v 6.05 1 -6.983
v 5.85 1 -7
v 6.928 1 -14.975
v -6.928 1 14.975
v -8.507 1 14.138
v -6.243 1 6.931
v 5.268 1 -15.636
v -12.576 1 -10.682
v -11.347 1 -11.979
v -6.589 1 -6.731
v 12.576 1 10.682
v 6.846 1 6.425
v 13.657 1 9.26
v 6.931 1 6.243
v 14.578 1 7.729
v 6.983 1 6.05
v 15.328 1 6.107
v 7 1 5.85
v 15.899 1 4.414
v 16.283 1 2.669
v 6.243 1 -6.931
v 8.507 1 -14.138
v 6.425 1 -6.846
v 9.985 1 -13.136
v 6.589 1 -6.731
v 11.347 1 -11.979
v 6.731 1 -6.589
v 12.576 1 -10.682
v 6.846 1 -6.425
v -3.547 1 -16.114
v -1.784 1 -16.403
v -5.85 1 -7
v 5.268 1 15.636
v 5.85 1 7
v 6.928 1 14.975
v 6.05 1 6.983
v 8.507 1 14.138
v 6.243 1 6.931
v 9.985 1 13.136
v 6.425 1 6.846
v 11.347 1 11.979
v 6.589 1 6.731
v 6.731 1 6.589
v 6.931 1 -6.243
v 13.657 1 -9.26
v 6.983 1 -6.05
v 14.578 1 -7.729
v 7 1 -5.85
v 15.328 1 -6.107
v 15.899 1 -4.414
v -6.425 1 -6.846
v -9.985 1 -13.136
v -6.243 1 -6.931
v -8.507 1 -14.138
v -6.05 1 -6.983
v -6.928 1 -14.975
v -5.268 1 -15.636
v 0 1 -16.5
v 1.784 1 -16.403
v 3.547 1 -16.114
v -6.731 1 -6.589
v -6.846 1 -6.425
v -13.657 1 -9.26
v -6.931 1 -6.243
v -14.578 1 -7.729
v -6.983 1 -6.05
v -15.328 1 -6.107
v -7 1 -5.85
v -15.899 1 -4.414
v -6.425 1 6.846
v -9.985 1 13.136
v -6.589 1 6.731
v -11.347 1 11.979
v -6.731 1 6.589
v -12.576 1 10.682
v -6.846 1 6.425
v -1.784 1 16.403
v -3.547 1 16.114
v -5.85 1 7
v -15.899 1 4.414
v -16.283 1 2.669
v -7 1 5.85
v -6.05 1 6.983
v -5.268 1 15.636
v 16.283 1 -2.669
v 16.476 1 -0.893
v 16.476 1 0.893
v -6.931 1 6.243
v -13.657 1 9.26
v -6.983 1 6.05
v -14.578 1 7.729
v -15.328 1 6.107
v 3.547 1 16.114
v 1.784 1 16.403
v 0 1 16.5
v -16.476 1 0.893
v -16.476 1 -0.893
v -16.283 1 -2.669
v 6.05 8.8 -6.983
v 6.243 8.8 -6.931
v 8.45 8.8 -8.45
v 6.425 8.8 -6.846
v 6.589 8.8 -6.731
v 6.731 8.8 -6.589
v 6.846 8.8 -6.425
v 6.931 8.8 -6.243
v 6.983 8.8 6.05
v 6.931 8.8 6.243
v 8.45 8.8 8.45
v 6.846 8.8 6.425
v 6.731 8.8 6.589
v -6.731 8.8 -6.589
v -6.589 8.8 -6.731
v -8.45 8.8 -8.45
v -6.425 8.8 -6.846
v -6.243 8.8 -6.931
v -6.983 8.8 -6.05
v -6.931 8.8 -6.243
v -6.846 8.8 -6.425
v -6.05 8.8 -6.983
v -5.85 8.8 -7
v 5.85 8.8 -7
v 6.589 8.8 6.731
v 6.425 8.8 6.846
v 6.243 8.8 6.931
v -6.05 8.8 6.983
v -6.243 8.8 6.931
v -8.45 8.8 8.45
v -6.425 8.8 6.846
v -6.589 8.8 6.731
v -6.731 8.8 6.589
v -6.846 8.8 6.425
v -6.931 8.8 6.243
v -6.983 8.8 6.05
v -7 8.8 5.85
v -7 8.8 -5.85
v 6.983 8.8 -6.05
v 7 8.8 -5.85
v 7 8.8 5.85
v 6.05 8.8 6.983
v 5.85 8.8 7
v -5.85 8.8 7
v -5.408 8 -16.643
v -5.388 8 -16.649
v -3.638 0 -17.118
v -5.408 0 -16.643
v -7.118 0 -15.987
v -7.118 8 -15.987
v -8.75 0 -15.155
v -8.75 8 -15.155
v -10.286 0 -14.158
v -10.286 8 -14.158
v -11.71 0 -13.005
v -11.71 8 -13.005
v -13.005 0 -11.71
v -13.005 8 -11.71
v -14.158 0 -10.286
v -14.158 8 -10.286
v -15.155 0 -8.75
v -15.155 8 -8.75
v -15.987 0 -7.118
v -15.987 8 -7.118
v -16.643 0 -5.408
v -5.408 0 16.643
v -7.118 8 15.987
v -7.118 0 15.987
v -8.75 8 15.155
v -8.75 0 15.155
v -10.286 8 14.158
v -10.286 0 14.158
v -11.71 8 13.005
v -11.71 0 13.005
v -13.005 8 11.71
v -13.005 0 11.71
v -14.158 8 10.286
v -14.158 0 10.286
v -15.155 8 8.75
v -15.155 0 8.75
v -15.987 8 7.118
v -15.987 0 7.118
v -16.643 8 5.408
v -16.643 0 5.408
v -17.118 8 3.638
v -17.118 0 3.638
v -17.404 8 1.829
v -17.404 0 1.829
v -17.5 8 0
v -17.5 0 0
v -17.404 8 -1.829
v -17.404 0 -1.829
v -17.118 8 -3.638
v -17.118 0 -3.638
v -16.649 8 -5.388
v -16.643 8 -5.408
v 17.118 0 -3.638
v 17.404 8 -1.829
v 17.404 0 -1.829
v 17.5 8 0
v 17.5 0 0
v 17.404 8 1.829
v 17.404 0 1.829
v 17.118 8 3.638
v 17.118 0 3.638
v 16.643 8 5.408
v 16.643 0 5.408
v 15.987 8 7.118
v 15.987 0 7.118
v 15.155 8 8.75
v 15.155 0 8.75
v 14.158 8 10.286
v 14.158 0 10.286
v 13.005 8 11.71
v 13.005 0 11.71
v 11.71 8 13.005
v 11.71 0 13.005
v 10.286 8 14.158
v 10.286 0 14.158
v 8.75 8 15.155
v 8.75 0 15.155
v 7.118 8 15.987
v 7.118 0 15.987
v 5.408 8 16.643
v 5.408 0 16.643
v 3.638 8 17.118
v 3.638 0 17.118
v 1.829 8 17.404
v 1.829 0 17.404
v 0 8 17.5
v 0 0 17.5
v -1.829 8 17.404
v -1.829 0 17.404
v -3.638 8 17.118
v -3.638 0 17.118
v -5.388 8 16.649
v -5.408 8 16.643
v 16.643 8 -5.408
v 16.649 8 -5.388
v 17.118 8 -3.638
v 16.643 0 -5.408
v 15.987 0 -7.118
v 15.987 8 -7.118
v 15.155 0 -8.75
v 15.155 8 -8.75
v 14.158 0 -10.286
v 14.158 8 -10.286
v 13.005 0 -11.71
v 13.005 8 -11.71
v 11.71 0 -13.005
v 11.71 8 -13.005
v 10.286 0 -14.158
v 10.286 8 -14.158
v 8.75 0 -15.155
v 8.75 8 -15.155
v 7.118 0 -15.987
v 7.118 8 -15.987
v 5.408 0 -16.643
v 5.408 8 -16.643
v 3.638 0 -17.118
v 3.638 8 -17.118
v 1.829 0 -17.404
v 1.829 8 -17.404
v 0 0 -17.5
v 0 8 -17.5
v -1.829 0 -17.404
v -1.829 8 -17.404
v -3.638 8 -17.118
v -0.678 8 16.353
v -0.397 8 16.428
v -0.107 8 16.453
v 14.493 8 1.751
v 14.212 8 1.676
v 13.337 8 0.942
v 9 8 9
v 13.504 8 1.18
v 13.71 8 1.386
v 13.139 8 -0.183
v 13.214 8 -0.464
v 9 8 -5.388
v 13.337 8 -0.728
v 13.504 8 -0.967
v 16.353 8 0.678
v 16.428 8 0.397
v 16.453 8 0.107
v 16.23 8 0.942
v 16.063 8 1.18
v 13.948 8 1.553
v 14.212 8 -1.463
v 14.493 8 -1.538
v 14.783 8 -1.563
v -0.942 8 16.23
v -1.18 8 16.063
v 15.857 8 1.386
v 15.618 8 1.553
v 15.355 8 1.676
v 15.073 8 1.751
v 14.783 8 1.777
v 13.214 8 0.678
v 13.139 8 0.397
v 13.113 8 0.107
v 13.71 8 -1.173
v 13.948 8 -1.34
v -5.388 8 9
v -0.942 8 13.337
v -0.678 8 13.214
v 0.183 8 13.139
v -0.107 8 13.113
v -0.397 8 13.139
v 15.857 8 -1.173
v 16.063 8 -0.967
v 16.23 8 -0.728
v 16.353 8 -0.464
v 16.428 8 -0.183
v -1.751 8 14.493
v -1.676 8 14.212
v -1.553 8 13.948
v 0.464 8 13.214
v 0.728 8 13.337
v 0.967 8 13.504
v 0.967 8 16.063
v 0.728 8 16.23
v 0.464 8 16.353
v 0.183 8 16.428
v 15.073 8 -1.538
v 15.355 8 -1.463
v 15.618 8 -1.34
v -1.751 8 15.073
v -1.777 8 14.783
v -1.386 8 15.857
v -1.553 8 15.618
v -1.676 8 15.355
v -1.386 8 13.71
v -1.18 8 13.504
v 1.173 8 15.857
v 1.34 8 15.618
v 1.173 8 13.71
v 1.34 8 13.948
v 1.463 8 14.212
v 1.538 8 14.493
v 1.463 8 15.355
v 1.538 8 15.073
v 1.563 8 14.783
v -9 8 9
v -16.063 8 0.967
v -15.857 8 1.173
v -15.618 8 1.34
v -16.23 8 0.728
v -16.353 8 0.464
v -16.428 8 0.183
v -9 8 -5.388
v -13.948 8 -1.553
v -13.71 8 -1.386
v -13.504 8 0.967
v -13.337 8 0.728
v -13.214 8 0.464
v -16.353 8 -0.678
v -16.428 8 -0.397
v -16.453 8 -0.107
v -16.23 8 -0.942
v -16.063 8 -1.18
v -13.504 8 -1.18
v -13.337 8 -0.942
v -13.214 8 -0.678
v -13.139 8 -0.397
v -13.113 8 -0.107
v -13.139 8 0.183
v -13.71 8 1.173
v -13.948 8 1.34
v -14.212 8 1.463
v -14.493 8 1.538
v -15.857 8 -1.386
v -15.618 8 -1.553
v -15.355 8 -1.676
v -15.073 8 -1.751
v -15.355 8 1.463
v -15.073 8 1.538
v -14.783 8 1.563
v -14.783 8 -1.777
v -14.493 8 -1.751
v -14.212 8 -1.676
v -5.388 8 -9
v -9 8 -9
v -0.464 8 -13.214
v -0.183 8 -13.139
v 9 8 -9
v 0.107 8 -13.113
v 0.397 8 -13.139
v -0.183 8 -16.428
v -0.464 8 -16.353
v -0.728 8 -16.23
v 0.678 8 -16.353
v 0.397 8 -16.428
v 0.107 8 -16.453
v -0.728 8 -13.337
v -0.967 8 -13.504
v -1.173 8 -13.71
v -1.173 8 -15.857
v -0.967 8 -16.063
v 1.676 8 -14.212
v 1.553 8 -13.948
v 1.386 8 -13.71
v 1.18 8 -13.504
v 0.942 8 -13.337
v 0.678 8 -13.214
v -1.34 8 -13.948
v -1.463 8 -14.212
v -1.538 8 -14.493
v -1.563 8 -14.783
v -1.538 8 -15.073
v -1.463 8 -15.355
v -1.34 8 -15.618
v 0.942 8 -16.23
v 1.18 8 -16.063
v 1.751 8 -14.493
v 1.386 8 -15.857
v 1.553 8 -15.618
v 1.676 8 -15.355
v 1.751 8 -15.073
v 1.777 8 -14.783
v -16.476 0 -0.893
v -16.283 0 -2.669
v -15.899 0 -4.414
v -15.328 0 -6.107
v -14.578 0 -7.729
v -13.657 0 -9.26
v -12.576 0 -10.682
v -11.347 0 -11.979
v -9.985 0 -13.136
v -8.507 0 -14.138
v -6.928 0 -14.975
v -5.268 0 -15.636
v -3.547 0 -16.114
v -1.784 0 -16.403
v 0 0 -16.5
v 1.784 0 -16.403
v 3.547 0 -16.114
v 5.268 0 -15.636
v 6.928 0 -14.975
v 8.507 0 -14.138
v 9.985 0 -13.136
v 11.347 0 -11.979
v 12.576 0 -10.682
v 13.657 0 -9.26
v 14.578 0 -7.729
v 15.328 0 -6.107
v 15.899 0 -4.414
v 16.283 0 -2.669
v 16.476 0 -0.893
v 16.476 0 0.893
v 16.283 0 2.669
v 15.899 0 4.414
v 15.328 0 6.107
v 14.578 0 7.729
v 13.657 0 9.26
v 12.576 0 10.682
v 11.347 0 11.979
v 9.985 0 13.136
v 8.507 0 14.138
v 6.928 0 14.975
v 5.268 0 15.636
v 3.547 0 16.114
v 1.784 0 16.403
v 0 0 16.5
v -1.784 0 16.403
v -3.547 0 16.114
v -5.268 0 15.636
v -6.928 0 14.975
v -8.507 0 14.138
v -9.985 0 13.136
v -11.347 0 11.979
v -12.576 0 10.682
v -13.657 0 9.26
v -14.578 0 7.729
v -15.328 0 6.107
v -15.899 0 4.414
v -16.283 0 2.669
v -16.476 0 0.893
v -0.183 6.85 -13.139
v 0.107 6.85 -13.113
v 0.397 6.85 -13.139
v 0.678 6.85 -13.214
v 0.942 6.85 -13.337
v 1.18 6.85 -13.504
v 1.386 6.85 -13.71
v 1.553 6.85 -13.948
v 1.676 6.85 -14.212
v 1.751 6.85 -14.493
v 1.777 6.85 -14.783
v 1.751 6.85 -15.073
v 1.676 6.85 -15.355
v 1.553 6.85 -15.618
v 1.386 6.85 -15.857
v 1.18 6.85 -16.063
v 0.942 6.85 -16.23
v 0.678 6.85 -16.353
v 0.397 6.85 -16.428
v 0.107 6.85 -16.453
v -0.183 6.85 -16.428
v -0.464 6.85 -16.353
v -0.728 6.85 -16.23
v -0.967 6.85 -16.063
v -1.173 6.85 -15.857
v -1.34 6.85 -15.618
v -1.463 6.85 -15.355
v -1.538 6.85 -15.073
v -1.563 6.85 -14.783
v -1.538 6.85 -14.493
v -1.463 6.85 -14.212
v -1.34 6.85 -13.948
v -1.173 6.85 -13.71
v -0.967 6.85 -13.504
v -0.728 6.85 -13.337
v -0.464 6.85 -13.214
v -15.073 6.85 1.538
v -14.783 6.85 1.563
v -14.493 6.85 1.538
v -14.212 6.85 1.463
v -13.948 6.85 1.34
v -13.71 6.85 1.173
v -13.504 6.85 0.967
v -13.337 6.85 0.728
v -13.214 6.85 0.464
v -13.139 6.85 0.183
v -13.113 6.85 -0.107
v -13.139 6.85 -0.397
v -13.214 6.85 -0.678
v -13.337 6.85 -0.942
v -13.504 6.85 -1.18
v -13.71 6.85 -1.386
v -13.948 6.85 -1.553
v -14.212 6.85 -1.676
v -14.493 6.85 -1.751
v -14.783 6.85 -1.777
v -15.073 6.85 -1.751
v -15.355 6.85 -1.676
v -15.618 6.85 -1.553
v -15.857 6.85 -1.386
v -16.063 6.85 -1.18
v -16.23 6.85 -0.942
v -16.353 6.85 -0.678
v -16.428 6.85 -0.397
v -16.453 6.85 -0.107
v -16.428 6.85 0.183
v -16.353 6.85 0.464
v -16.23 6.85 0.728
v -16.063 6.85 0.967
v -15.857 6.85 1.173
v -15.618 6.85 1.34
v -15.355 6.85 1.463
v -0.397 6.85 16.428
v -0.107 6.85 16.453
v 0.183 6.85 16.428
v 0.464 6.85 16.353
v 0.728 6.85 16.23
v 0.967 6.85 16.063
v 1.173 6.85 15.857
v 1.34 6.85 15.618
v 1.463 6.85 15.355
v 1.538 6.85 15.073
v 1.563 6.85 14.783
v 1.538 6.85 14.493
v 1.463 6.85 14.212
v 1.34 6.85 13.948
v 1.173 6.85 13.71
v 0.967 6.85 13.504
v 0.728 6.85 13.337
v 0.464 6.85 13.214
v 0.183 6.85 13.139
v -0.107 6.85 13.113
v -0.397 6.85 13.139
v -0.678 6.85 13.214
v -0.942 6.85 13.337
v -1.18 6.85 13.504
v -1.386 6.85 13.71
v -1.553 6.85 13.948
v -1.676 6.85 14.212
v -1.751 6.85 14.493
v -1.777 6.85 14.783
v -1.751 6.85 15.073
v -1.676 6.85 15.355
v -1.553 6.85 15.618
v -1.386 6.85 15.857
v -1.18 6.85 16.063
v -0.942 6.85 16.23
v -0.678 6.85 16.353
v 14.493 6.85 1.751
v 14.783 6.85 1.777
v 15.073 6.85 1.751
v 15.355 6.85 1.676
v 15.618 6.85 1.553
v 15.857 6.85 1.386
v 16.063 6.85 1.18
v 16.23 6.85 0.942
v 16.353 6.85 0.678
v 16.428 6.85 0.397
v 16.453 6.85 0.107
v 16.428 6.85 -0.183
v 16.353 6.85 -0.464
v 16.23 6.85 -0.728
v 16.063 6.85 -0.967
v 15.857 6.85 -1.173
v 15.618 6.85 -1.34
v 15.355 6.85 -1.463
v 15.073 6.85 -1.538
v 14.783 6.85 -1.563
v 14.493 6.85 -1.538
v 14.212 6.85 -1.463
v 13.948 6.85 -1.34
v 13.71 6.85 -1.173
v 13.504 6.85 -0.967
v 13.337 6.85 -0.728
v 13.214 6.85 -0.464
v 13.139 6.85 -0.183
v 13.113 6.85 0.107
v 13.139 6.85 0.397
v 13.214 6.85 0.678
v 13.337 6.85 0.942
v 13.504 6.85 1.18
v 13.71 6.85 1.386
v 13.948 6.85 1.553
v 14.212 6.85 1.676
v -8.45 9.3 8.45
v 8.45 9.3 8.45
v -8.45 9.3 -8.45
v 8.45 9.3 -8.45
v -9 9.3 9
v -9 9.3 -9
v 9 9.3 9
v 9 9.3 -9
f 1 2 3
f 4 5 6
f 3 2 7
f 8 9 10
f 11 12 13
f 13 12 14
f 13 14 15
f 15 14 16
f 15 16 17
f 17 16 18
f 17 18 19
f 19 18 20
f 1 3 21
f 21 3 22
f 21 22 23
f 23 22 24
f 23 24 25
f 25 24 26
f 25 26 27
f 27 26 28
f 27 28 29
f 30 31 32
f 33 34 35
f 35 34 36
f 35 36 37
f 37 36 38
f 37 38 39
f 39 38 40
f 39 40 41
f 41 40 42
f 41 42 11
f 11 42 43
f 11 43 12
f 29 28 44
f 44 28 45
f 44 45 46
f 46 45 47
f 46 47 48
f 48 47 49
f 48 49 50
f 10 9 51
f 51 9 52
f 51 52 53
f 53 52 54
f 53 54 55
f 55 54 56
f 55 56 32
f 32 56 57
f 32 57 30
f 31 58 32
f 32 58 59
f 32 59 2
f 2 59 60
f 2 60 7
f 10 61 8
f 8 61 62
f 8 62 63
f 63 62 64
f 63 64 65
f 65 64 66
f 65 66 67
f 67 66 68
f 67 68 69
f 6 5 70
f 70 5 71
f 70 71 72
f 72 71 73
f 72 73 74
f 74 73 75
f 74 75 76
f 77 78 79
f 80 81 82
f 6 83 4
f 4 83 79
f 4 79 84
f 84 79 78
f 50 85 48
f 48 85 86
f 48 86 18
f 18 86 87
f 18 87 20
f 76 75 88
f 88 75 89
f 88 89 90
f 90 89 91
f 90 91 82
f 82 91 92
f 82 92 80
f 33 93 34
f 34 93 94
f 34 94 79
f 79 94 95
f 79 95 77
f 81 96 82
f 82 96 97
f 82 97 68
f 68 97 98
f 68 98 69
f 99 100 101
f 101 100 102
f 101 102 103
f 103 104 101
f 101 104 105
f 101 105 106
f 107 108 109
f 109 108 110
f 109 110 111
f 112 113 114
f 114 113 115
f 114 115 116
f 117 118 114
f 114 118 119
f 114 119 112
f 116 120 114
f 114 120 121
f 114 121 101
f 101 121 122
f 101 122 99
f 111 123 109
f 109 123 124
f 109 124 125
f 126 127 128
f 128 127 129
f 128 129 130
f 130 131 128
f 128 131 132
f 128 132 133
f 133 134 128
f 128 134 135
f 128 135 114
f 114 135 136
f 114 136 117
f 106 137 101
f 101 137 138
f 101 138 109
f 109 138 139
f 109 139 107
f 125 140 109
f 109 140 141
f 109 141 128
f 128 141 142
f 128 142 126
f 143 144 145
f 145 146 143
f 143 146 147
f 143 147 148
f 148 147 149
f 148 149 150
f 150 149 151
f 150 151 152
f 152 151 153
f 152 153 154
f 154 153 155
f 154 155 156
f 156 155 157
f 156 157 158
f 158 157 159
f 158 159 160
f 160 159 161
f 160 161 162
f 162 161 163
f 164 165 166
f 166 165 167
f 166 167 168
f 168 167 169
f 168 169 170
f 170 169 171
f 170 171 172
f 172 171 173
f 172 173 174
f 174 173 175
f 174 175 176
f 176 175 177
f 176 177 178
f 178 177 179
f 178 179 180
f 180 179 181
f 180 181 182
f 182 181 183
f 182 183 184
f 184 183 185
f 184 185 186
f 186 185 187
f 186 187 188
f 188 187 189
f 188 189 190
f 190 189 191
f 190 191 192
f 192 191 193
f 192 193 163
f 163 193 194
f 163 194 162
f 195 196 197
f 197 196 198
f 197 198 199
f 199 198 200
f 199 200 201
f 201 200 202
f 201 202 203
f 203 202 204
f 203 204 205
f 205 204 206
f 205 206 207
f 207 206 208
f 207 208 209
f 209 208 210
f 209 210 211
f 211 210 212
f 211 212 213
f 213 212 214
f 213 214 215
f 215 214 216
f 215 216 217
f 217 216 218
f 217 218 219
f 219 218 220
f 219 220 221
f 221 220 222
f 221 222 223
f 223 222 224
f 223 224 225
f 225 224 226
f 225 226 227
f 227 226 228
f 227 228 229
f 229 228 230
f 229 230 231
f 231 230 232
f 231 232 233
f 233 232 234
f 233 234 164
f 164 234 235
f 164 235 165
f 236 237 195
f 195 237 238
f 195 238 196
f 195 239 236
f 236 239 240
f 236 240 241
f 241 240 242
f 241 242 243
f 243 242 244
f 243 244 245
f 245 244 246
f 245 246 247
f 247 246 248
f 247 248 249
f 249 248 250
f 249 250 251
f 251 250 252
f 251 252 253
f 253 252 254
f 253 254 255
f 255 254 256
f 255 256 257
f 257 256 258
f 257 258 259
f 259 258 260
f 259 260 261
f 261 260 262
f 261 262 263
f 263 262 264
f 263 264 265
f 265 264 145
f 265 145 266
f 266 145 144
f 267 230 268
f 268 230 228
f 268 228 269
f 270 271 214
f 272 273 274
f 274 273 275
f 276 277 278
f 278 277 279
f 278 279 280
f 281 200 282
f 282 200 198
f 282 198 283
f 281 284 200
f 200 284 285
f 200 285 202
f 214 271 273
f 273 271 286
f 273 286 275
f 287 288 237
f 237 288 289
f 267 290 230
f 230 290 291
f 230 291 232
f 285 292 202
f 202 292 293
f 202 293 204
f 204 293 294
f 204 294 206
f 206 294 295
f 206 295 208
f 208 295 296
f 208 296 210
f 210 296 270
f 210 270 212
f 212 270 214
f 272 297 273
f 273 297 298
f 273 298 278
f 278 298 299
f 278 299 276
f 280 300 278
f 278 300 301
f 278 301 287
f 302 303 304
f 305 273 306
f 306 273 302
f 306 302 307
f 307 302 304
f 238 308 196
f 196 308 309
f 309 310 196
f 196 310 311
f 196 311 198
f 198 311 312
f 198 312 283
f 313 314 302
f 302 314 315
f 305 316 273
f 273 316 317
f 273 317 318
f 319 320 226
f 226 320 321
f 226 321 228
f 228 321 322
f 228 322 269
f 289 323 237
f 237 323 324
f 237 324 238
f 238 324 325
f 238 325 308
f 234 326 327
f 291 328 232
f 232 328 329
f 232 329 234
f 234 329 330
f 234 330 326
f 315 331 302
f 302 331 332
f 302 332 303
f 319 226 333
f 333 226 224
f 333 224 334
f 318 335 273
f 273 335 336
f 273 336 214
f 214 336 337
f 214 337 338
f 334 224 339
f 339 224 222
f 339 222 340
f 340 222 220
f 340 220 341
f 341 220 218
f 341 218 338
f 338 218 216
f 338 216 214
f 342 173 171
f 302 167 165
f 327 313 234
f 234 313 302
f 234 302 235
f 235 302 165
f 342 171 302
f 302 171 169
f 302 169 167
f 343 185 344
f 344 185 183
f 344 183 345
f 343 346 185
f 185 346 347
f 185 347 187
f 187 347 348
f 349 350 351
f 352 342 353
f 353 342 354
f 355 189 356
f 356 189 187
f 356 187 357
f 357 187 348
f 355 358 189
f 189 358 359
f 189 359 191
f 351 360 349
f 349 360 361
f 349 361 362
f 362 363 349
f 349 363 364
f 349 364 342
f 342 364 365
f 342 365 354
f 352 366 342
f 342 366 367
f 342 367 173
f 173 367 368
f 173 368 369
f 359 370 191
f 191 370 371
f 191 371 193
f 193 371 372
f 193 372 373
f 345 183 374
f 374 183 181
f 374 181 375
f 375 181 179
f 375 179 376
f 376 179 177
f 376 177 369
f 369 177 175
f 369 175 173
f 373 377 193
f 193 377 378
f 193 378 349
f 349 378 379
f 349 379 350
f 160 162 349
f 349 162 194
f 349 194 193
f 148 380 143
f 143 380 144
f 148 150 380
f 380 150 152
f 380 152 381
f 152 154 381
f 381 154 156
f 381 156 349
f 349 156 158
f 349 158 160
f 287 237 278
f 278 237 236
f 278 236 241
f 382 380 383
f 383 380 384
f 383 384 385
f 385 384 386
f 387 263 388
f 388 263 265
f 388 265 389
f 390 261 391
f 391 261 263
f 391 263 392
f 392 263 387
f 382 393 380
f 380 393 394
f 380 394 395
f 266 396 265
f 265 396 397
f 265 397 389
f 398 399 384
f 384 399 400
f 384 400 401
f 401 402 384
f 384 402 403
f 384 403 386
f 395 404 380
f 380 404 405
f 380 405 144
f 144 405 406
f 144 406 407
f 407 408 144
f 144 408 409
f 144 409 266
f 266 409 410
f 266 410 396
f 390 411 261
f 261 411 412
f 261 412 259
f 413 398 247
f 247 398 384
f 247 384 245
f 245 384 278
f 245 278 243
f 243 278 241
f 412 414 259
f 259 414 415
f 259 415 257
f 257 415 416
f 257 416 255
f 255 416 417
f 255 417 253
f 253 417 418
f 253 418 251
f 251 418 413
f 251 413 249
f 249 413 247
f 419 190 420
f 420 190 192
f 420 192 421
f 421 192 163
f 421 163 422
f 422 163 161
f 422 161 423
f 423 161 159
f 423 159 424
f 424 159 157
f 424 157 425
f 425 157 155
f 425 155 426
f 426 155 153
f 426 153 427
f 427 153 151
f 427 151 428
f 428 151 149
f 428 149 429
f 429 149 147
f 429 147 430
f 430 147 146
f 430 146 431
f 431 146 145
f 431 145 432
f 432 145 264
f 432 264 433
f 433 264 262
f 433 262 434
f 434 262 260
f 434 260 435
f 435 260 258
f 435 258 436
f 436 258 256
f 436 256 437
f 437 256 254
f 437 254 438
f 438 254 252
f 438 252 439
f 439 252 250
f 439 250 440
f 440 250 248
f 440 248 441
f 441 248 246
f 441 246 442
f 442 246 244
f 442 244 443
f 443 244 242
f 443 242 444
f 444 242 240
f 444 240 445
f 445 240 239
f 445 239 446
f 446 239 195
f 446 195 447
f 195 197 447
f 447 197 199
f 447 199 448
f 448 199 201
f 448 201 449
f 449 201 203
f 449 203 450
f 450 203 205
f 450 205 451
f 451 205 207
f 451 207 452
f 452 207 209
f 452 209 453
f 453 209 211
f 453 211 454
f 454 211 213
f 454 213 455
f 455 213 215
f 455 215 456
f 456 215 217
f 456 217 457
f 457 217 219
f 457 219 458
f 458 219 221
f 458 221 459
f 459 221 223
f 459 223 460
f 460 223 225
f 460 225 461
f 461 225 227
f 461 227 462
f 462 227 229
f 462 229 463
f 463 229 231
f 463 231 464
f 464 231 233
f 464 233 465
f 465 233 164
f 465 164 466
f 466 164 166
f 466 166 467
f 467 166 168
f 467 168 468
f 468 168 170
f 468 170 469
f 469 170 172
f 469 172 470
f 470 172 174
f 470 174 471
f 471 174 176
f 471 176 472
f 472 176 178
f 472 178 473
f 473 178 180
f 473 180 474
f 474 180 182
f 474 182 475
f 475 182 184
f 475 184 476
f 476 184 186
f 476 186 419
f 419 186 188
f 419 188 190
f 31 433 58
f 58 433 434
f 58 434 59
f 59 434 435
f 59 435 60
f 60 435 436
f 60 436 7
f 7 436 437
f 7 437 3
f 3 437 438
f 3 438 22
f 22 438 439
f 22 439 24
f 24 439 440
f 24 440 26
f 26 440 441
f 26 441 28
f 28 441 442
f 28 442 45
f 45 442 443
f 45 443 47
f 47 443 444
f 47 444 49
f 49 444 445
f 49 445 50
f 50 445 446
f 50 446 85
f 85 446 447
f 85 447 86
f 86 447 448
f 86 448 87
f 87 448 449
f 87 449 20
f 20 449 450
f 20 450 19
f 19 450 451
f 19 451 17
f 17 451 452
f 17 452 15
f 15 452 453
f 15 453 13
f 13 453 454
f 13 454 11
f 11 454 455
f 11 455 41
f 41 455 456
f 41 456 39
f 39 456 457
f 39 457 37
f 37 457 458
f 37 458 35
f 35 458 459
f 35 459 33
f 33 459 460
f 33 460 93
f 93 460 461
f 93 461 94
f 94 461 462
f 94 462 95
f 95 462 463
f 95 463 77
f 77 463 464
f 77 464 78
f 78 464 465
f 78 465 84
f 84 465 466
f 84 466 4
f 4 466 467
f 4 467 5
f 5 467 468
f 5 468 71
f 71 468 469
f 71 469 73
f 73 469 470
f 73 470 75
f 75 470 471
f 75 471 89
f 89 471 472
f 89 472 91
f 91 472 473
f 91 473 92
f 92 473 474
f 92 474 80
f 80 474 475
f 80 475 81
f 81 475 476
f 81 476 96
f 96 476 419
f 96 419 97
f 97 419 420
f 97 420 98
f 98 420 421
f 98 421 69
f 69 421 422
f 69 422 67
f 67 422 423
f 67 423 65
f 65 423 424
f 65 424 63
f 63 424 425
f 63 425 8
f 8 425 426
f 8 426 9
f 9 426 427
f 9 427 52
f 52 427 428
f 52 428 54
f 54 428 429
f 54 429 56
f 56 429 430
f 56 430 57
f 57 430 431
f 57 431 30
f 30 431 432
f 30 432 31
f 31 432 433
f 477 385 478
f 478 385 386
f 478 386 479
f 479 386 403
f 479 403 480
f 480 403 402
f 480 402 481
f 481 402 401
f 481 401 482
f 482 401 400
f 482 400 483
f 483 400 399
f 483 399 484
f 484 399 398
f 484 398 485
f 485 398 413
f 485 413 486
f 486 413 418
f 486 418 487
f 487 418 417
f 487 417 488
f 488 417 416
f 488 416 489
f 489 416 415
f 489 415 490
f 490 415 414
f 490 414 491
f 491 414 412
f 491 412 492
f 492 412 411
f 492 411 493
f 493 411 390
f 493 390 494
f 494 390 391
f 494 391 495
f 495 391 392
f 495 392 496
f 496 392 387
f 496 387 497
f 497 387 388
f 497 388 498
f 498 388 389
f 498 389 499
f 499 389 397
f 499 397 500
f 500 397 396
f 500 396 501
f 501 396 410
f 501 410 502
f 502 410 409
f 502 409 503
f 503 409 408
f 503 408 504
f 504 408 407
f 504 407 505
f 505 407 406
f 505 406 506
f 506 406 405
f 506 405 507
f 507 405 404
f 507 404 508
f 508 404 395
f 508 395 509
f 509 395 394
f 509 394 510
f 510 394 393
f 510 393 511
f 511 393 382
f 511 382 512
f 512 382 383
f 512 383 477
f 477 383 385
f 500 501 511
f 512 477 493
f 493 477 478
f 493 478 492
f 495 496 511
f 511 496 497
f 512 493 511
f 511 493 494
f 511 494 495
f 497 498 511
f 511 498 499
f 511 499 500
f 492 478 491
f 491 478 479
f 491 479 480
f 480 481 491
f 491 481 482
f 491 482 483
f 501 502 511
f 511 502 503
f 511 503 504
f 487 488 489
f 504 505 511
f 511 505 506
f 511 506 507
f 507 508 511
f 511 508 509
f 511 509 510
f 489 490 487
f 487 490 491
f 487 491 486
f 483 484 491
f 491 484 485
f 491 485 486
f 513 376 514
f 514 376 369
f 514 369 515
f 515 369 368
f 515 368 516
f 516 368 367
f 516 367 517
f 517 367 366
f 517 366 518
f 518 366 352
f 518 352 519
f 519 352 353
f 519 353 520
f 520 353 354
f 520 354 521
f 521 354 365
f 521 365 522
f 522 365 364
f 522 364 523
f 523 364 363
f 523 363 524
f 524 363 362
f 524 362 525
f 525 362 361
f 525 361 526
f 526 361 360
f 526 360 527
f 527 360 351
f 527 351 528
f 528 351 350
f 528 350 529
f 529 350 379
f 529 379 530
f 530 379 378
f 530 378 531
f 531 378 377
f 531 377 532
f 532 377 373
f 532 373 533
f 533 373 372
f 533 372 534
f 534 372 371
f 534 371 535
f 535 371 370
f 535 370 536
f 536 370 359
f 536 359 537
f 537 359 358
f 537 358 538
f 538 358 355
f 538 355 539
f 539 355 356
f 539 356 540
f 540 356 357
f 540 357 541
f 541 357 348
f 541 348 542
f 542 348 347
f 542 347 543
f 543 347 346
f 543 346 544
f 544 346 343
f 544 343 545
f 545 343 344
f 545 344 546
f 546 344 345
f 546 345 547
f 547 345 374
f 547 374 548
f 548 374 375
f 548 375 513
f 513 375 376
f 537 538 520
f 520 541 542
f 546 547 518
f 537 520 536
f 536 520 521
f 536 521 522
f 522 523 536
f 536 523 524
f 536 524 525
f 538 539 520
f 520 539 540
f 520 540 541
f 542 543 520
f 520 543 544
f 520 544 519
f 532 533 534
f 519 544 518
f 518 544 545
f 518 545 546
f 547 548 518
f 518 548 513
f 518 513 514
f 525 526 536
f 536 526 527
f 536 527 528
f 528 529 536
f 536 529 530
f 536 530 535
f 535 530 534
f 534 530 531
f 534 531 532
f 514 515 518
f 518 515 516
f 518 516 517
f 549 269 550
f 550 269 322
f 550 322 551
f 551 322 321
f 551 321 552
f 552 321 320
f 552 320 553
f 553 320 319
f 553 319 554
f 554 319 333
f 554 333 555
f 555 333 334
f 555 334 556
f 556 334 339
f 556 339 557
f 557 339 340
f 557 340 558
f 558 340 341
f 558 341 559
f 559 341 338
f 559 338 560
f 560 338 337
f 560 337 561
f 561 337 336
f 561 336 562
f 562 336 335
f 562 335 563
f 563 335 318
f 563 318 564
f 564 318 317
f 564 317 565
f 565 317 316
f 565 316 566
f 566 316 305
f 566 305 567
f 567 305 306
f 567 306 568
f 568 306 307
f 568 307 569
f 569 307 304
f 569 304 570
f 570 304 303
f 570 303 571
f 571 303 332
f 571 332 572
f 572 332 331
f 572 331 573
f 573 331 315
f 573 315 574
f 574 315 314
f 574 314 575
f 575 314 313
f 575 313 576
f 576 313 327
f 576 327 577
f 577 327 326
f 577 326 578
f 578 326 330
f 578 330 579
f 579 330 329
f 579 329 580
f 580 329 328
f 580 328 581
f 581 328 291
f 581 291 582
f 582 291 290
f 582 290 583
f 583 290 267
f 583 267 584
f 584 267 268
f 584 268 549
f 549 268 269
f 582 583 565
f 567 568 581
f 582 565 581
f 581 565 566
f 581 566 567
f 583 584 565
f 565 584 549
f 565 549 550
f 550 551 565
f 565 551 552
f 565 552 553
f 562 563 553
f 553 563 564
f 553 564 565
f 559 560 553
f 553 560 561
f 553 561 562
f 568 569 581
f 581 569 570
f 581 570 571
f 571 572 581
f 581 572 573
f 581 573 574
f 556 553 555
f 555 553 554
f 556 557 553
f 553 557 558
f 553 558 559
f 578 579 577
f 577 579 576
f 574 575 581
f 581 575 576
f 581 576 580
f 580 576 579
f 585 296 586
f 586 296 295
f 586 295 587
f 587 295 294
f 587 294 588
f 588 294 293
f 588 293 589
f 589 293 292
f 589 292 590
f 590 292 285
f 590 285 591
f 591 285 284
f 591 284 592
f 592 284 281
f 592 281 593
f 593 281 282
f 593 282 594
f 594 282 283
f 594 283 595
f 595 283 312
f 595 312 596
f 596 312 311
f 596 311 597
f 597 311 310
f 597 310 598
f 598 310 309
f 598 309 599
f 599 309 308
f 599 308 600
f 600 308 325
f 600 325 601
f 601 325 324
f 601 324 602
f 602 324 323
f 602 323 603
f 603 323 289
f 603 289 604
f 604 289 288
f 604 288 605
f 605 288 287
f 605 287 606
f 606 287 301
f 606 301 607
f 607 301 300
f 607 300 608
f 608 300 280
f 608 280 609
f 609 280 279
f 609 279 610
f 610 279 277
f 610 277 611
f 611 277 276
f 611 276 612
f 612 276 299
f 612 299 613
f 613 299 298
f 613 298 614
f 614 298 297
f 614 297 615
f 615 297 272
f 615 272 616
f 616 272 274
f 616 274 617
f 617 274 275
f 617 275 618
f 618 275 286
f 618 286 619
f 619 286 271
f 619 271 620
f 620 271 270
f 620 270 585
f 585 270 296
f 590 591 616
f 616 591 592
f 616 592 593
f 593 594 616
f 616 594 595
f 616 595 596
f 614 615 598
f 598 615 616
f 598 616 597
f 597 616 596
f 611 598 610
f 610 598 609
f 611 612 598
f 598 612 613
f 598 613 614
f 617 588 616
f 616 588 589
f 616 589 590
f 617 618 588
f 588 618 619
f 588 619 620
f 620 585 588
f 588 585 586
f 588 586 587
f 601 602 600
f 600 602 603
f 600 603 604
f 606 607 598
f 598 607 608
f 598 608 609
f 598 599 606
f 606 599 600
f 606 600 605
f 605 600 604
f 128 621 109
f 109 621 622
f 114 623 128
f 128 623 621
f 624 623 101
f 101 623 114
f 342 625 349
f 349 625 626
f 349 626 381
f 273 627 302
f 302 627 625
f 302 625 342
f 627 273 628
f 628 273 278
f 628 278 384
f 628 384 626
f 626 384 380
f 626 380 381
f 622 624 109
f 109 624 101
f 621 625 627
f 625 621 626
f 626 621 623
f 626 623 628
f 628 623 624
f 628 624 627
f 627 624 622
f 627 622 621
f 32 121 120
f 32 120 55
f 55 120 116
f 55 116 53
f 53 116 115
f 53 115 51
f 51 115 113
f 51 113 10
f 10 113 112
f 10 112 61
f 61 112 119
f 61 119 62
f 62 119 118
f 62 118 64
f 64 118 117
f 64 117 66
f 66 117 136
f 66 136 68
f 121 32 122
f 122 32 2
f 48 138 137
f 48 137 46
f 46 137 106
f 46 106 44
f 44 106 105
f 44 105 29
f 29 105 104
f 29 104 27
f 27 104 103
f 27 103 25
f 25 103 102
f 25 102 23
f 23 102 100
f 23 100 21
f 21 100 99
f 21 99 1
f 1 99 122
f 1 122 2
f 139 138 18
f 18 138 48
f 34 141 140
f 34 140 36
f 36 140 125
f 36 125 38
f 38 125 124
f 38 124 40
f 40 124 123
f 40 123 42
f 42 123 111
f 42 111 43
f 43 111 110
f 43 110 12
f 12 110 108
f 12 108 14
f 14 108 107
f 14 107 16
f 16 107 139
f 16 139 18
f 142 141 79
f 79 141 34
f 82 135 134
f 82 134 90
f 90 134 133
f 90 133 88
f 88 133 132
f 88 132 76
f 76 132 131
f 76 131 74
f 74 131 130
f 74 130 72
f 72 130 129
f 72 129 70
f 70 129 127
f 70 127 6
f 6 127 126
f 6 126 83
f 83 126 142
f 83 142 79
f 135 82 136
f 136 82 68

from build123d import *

# Parameters (mm, degrees)
SKETCH1_R           = 17.5
BOSS_EXTRUDE1_DEPTH = 8
SKETCH5_R           = 16.5
CUT_EXTRUDE2_DEPTH  = 1
SKETCH11_R          = 1.67
CUT_EXTRUDE5_DEPTH  = 1.15
CIRPATTERN1_COUNT   = 4
SKETCH13_W          = 18
SKETCH13_H          = 18
SKETCH13_W_2        = 16.9
SKETCH13_H_2        = 16.9
BOSS_EXTRUDE3_DEPTH = 1.3
SKETCH12_W          = 18
SKETCH12_H          = 18
BOSS_EXTRUDE2_DEPTH = 0.8
CUT_EXTRUDE6_DEPTH  = 27.266708968


with BuildPart() as part:
    # Sketch1 → Boss-Extrude1 (new body)
    with BuildSketch(Plane(origin=(0, 0, 0), x_dir=(1, 0, 0), z_dir=(0, 1, 0))):
        with Locations(Location((0, 0, 0), (0, 0, 270))):
            Circle(SKETCH1_R)
    extrude(amount=BOSS_EXTRUDE1_DEPTH)

    # Sketch5 → Cut-Extrude2 (cut)
    with BuildSketch(Plane.XZ):
        with Locations(Location((0, 0, 0), (0, 0, 270))):
            Circle(SKETCH5_R)
    extrude(amount=-CUT_EXTRUDE2_DEPTH, mode=Mode.SUBTRACT)

    # Sketch11 → Cut-Extrude5 (cut)
    with BuildSketch(Plane(origin=(0, 8, 0), x_dir=(1, 0, 0), z_dir=(0, 1, 0))):
        with Locations(Location((0.106708516, 14.783412681, 0), (0, 0, 270))):
            Circle(SKETCH11_R)
    cut_extrude5 = extrude(amount=-CUT_EXTRUDE5_DEPTH, mode=Mode.SUBTRACT)

    # CirPattern1: Cut-Extrude5 ×4 about axis
    cirpattern1_axis = Axis((0, 0, 0), (0, 1, 0))
    for i in range(1, CIRPATTERN1_COUNT):
        add(cut_extrude5.rotate(cirpattern1_axis, i * 360 / CIRPATTERN1_COUNT), mode=Mode.SUBTRACT)

    # Sketch13 → Boss-Extrude3 (add)
    with BuildSketch(Plane(origin=(0, 8, 0), x_dir=(1, 0, 0), z_dir=(0, 1, 0))):
        Rectangle(SKETCH13_W, SKETCH13_H)
        Rectangle(SKETCH13_W_2, SKETCH13_H_2, mode=Mode.SUBTRACT)
    extrude(amount=BOSS_EXTRUDE3_DEPTH)

    # Sketch12 → Boss-Extrude2 (add)
    with BuildSketch(Plane(origin=(0, 8, 0), x_dir=(1, 0, 0), z_dir=(0, 1, 0))):
        Rectangle(SKETCH12_W, SKETCH12_H)
    extrude(amount=BOSS_EXTRUDE2_DEPTH)

    # Sketch14 → Cut-Extrude6 (cut, through all)
    with BuildSketch(Plane(origin=(0, 8.8, 0), x_dir=(1, 0, 0), z_dir=(0, 1, 0))):
        with BuildLine():
            ThreePointArc((-7, -5.85), (-6.663172798, -6.663172798), (-5.85, -7))
            Line((-5.85, -7), (5.85, -7))
            ThreePointArc((5.85, -7), (6.663172798, -6.663172798), (7, -5.85))
            Line((7, -5.85), (7, 5.85))
            ThreePointArc((7, 5.85), (6.663172798, 6.663172798), (5.85, 7))
            Line((5.85, 7), (-5.85, 7))
            ThreePointArc((-5.85, 7), (-6.663172798, 6.663172798), (-7, 5.85))
            Line((-7, 5.85), (-7, -5.85))
        make_face()
    extrude(amount=-CUT_EXTRUDE6_DEPTH, mode=Mode.SUBTRACT)


solid = part.part
